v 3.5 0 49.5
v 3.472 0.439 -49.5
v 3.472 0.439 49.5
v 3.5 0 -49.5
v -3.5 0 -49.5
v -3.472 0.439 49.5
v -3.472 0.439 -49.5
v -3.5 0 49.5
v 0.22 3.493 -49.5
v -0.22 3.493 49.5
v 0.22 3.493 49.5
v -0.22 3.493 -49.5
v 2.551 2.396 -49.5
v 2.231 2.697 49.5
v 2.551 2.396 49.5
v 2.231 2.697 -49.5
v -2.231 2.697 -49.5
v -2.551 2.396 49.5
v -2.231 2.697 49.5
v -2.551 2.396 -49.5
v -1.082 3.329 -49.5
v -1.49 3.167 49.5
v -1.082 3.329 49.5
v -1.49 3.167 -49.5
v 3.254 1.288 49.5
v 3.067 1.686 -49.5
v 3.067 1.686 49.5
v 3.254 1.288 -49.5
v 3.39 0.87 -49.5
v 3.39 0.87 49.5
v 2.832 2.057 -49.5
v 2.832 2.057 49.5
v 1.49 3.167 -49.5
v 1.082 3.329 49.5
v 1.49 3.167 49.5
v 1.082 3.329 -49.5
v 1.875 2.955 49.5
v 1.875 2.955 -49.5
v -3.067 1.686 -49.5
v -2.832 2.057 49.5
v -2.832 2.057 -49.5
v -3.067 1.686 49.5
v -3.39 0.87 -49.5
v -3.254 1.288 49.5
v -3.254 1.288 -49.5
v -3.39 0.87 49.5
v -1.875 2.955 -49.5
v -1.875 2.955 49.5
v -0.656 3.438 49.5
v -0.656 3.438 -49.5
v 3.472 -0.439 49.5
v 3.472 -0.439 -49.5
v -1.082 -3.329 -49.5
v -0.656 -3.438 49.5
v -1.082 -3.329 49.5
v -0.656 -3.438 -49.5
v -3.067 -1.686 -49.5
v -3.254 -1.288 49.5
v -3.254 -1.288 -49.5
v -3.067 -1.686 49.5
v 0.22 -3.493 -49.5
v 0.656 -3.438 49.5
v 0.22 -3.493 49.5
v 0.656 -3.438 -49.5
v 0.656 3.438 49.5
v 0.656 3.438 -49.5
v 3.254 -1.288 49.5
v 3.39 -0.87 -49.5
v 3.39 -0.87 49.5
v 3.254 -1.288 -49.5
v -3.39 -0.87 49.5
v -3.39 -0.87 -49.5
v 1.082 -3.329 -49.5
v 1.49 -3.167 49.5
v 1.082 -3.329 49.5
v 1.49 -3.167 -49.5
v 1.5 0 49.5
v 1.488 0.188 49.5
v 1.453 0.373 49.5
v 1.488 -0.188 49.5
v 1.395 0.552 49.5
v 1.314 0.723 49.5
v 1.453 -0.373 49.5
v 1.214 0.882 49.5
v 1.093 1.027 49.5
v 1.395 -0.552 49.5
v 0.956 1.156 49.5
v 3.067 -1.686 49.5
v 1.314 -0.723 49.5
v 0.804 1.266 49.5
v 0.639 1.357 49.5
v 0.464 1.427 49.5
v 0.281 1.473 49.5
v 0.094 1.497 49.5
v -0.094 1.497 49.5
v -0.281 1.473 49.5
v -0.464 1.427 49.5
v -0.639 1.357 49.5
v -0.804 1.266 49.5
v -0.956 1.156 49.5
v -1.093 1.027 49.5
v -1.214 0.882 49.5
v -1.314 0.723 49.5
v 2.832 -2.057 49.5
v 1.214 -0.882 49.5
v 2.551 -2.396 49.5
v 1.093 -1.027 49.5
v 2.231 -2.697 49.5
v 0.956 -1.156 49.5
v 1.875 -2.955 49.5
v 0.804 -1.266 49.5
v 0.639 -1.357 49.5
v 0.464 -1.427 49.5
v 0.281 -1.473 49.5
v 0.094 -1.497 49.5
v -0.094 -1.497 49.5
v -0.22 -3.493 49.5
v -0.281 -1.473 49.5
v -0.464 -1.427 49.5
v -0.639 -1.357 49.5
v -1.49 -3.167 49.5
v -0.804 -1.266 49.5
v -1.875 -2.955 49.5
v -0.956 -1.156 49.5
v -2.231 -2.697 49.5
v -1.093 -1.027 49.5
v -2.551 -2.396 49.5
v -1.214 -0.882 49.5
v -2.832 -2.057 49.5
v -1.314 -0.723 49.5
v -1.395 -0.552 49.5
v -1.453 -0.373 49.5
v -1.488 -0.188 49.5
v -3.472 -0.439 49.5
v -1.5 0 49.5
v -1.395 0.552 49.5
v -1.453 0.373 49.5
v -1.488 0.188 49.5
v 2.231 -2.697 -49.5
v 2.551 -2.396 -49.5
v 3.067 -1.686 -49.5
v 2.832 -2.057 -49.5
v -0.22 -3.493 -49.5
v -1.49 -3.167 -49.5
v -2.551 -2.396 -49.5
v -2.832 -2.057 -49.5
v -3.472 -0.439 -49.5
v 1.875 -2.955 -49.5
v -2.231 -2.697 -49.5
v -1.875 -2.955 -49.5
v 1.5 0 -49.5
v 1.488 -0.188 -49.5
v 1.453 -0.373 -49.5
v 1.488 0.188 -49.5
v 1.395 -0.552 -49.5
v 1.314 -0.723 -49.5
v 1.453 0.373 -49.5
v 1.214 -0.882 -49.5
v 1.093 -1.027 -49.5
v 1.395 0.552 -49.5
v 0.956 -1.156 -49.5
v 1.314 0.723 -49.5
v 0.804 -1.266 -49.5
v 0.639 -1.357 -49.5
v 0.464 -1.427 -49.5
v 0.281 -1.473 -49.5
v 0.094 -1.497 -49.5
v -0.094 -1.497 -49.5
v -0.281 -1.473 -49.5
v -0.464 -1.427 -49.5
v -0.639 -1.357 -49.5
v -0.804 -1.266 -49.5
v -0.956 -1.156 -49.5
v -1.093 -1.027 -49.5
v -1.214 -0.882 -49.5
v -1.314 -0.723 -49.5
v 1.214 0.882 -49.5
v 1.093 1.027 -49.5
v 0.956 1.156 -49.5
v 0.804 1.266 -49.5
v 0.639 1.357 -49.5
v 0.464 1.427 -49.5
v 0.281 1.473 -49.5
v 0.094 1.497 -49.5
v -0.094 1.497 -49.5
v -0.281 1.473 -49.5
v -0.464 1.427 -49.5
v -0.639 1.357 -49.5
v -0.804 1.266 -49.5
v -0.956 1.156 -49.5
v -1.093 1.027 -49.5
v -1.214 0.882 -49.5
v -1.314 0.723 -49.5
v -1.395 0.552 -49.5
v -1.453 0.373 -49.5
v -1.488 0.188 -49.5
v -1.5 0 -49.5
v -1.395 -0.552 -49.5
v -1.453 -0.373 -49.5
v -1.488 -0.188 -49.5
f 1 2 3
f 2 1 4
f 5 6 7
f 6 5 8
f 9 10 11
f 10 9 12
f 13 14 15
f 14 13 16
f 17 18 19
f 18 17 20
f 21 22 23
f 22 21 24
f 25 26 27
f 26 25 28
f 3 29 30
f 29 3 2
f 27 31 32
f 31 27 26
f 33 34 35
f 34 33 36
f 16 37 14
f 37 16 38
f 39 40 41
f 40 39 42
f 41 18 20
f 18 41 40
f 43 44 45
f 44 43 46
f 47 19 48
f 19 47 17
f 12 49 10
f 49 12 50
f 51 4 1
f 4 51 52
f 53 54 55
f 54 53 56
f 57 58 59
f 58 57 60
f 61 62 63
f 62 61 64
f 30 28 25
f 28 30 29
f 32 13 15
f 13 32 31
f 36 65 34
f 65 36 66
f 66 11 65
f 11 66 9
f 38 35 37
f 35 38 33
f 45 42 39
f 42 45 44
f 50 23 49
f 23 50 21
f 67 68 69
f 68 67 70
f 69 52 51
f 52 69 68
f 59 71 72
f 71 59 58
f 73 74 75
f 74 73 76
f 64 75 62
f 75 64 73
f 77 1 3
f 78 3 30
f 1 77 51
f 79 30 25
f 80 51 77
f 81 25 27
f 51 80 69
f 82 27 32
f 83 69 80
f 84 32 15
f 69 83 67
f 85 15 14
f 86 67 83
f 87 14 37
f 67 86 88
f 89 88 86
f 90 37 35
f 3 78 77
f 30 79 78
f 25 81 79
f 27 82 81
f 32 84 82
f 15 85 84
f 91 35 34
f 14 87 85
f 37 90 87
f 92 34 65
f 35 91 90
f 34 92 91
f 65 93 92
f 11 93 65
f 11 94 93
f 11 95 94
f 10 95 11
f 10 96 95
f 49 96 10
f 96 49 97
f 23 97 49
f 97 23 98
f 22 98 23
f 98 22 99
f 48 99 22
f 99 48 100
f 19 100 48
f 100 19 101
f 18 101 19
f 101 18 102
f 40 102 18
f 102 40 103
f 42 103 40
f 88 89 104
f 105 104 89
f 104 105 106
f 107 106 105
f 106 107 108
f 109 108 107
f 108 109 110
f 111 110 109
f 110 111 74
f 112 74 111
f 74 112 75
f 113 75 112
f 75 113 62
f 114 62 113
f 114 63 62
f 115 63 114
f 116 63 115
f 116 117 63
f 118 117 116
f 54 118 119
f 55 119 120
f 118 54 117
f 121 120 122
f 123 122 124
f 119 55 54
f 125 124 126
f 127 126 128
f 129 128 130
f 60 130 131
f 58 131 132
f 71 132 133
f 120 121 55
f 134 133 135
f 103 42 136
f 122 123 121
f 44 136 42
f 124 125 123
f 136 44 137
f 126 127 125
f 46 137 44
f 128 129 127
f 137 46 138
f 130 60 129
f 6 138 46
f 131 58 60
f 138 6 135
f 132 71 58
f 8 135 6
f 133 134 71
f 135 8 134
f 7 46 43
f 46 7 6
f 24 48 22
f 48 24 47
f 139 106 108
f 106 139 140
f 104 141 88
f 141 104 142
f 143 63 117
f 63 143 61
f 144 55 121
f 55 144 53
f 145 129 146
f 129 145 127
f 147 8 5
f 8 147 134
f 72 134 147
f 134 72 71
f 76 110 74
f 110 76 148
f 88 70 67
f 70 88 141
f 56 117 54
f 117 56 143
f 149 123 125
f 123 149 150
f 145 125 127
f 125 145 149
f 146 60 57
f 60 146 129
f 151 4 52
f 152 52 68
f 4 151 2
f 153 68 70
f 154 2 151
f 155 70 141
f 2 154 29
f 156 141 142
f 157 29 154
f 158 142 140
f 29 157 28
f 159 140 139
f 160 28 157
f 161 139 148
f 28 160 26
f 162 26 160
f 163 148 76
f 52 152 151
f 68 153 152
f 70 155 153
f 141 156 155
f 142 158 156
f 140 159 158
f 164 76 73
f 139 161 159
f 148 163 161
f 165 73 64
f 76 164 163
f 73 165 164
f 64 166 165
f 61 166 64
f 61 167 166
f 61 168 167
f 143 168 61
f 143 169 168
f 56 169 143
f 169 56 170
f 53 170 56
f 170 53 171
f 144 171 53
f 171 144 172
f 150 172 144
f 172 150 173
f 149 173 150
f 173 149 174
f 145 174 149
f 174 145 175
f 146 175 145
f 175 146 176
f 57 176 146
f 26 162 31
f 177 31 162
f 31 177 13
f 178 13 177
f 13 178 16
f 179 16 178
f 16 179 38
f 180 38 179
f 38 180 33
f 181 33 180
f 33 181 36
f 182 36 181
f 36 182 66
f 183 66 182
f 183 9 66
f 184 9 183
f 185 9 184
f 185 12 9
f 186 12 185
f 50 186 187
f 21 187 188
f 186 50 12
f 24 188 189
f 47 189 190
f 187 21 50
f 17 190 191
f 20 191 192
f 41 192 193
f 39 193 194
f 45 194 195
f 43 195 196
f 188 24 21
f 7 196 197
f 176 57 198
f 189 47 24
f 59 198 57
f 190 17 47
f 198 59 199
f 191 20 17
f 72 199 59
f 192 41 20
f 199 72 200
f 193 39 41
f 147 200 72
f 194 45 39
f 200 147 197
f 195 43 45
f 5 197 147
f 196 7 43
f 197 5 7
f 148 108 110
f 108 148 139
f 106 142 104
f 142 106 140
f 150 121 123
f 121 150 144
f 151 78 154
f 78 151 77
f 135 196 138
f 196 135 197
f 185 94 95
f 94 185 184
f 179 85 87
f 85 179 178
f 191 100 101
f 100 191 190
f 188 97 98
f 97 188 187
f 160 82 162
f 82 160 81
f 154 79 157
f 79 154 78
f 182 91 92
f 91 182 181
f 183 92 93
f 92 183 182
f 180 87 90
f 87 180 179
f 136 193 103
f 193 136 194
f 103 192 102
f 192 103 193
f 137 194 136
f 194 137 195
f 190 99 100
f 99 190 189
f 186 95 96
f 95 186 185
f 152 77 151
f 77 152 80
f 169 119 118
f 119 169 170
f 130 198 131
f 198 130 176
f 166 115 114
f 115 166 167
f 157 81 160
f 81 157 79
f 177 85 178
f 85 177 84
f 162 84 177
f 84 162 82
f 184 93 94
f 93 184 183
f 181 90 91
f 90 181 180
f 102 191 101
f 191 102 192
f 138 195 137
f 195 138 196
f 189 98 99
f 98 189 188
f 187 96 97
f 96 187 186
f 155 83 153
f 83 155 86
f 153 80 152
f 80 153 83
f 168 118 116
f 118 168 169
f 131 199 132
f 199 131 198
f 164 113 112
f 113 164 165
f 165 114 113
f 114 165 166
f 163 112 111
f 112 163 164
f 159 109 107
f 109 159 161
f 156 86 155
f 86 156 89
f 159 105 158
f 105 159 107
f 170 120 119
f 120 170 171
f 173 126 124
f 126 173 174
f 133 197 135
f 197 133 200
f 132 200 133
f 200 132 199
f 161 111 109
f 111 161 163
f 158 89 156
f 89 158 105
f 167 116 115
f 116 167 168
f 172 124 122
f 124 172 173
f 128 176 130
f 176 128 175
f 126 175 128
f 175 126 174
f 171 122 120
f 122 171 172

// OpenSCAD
$fn = 50;


difference() {
	union() {
		translate(v = [0, 0, -49.5000000000]) {
			cylinder(h = 99, r = 3.5000000000);
		}
	}
	union() {
		translate(v = [0, 0, -100.0000000000]) {
			cylinder(h = 200, r = 1.5000000000);
		}
	}
}
